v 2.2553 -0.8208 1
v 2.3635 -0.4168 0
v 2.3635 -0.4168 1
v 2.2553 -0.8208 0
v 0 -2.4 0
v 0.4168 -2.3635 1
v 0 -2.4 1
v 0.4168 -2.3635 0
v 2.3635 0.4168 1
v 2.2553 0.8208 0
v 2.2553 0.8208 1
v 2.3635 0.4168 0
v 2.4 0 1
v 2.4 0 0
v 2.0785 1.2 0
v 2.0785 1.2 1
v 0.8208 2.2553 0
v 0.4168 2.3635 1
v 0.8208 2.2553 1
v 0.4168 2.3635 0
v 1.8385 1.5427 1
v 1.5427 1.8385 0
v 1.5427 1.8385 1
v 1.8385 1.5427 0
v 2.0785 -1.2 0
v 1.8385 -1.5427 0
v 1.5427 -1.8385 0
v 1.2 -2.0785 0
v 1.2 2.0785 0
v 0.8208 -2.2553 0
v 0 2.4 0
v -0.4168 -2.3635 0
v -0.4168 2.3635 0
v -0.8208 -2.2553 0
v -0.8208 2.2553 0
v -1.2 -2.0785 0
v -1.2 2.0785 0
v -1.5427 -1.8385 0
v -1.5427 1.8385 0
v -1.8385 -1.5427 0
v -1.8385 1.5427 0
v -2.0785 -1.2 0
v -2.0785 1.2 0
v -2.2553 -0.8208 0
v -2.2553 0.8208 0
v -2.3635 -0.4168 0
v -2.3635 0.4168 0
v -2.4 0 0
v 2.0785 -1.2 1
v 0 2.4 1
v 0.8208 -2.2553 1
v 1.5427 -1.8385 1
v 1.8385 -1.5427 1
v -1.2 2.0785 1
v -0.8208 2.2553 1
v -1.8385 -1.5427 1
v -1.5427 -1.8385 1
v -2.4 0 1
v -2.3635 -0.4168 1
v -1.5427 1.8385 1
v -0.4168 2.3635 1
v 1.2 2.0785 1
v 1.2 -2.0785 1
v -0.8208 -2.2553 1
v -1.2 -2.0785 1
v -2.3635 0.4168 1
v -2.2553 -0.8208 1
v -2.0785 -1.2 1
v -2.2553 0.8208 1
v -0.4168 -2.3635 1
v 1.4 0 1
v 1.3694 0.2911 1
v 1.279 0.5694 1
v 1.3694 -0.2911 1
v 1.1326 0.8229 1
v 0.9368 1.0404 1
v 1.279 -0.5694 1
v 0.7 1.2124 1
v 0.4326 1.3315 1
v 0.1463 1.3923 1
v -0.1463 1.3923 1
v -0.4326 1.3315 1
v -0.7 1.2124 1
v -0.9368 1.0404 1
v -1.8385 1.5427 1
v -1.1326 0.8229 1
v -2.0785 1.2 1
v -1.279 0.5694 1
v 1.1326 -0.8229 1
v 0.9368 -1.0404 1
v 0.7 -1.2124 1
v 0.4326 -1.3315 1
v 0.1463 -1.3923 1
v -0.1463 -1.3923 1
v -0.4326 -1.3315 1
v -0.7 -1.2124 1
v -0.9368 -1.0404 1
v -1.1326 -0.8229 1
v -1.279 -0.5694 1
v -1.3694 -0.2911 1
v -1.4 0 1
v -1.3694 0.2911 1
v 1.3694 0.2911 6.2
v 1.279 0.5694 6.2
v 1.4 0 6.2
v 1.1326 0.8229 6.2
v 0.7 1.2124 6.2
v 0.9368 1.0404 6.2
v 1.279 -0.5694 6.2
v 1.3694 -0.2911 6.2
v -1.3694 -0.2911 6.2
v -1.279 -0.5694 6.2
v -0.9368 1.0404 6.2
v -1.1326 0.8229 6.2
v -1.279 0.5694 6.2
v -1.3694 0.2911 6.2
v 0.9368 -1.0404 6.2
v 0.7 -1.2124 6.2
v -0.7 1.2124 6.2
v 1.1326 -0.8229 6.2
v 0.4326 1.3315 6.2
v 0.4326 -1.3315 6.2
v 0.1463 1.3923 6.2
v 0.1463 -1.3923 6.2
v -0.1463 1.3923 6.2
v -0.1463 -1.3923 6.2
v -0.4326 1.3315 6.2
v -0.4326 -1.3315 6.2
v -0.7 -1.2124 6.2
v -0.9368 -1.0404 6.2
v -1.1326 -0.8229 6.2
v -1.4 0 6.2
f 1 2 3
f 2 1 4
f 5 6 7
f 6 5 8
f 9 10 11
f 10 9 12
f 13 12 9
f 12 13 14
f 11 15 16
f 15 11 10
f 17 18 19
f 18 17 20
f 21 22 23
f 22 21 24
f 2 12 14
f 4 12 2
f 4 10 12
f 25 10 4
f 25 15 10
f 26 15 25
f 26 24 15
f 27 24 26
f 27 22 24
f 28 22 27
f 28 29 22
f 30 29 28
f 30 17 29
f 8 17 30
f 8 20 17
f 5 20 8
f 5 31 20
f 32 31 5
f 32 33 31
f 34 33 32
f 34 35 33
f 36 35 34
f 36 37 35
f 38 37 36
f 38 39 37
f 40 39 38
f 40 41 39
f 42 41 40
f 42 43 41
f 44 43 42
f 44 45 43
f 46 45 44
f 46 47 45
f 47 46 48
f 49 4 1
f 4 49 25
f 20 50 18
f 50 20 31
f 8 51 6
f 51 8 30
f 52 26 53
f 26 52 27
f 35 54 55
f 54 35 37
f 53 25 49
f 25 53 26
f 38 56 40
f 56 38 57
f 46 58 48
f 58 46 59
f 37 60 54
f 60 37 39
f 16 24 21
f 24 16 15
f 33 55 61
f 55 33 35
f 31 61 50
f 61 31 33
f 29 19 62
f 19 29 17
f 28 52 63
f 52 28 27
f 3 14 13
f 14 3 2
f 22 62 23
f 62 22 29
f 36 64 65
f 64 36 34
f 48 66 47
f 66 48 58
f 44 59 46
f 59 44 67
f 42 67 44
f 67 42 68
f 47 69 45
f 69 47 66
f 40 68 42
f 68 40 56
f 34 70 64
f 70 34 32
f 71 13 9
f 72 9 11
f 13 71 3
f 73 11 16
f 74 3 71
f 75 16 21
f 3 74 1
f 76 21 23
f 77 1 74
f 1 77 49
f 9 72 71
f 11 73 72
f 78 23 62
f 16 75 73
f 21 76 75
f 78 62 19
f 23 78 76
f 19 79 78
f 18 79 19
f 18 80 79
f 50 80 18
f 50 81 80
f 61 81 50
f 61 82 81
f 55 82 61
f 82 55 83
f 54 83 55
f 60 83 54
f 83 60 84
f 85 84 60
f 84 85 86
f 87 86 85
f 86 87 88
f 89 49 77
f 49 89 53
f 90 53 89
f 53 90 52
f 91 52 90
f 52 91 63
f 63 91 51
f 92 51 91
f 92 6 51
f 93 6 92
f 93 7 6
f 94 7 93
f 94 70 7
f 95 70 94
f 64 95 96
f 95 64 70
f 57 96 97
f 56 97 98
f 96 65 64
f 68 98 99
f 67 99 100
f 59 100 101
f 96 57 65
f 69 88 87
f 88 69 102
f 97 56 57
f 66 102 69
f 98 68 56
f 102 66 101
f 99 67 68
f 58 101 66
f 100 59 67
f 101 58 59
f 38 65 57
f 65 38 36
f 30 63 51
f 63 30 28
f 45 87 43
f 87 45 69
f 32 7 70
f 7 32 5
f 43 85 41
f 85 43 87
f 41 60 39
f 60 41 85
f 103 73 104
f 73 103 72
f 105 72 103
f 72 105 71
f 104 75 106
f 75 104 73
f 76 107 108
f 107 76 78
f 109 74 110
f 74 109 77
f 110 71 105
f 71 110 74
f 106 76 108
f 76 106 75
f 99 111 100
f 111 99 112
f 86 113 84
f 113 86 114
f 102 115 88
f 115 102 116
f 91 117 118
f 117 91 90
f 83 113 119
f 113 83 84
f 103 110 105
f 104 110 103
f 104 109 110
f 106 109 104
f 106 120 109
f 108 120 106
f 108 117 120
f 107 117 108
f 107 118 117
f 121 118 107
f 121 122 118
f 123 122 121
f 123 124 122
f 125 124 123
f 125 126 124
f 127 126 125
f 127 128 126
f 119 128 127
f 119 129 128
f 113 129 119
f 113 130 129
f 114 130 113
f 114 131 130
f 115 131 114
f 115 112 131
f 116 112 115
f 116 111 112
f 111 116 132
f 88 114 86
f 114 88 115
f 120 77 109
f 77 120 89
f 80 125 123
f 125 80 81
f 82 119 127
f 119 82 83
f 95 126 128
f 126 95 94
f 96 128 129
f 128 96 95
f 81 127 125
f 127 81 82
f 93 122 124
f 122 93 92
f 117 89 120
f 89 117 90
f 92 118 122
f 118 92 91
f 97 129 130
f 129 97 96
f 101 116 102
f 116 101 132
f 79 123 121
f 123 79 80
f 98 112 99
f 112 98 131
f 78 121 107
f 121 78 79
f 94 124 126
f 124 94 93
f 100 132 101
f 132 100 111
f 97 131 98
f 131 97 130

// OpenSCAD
// file: _h30-enclosure-model.scad
/*
  WHEELTEC H30 metal enclosure family geometry.
  Overall envelope without damper heads: 46.0 x 59.5 x 11.7 mm.
  Origin: center of mounting base, bottom face.
*/

include <_h30-pcb-model.scad>

enclosure_width = 46.0;
enclosure_length = 59.5;
enclosure_height = 11.7;
body_length = 43.3;
base_thickness = 2.0;
cover_height = 2.2;
corner_radius = 2.4;
mount_hole_diameter = 3.4;
mount_hole_x = 17.0;
mount_hole_y = 26.0;
wall_thickness = 1.8;

module h30_rounded_rect(size=[10, 10], radius=1) {
    offset(r=radius)
        square([size[0]-2*radius, size[1]-2*radius], center=true);
}

module h30_rounded_plate(size=[10, 10], height=1, radius=1) {
    linear_extrude(height=height)
        h30_rounded_rect(size, radius);
}

module h30_mounting_base() {
    difference() {
        h30_rounded_plate(
            [enclosure_width, enclosure_length],
            base_thickness,
            corner_radius
        );
        for (x=[-mount_hole_x, mount_hole_x], y=[-mount_hole_y, mount_hole_y])
            translate([x, y, -0.1])
                cylinder(d=mount_hole_diameter, h=base_thickness+0.2, $fn=40);
    }
}

module h30_main_housing() {
    lower_height = enclosure_height-cover_height-base_thickness;
    union() {
        h30_mounting_base();
        translate([0, 0, base_thickness])
            difference() {
                h30_rounded_plate(
                    [enclosure_width, body_length],
                    lower_height,
                    corner_radius
                );
                translate([0, 0, wall_thickness])
                    h30_rounded_plate(
                        [enclosure_width-2*wall_thickness,
                         body_length-2*wall_thickness],
                        lower_height,
                        max(0.8, corner_radius-wall_thickness)
                    );
                // USB-C opening centered on the front long wall.
                translate([0, -body_length/2-0.2, 2.5])
                    rotate([-90, 0, 0])
                        hull() {
                            translate([-3.8, 0, 0]) cylinder(d=3.2, h=wall_thickness+0.4, $fn=30);
                            translate([ 3.8, 0, 0]) cylinder(d=3.2, h=wall_thickness+0.4, $fn=30);
                        }
            }
    }
}

module h30_cover() {
    z0 = enclosure_height-cover_height;
    // The original enclosure has a smaller flat top and sloped shoulders.
    translate([0, 0, z0])
        hull() {
            h30_rounded_plate([enclosure_width, body_length], 0.35, corner_radius);
            translate([0, 0, cover_height-0.35])
                h30_rounded_plate([40.0, 36.0], 0.35, 1.8);
        }
}

module h30_cover_screw() {
    union() {
        cylinder(d=4.8, h=1.0, $fn=36);
        translate([0, 0, 0.8]) cylinder(d=2.8, h=5.4, $fn=30);
    }
}

module h30_four_cover_screws() {
    // Four screws enter from the underside and do not appear on the top cover.
    for (x=[-18.0, 18.0], y=[-16.0, 16.0])
        translate([x, y, 0.25]) h30_cover_screw();
}

module h30_plastic_damper_screw() {
    // Simplified nylon isolation screw: lower head, shank, upper retaining head.
    union() {
        cylinder(d=6.4, h=1.2, $fn=40);
        translate([0, 0, 0.8]) cylinder(d=3.0, h=3.0, $fn=32);
        translate([0, 0, 2.9]) cylinder(d1=5.8, d2=4.8, h=1.0, $fn=40);
    }
}

module h30_four_plastic_dampers() {
    for (x=[-mount_hole_x, mount_hole_x], y=[-mount_hole_y, mount_hole_y])
        translate([x, y, -0.65]) h30_plastic_damper_screw();
}

module h30_top_markings() {
    translate([0, 0, enclosure_height+0.01])
        linear_extrude(height=0.12) {
            translate([0, 10.0])
                text("WHEELTEC", size=3.0, halign="center", valign="center",
                     font="Liberation Sans:style=Bold");
            translate([0, -9.0])
                text("H30", size=4.0, halign="center", valign="center",
                     font="Liberation Sans:style=Regular");
            circle(d=1.2, $fn=24);
            for (angle=[0, 120, 240])
                rotate(angle)
                    polygon(points=[[0, 0], [7.0, -0.45], [7.0, 0.45]]);
        }
}

module h30_internal_pcb() {
    translate([0, 0, 2.38]) wheeltec_h30_pcb();
}
// main file
/* WHEELTEC H30 cover screw component. */
include <_h30-enclosure-model.scad>
color("#636A70") h30_cover_screw();
